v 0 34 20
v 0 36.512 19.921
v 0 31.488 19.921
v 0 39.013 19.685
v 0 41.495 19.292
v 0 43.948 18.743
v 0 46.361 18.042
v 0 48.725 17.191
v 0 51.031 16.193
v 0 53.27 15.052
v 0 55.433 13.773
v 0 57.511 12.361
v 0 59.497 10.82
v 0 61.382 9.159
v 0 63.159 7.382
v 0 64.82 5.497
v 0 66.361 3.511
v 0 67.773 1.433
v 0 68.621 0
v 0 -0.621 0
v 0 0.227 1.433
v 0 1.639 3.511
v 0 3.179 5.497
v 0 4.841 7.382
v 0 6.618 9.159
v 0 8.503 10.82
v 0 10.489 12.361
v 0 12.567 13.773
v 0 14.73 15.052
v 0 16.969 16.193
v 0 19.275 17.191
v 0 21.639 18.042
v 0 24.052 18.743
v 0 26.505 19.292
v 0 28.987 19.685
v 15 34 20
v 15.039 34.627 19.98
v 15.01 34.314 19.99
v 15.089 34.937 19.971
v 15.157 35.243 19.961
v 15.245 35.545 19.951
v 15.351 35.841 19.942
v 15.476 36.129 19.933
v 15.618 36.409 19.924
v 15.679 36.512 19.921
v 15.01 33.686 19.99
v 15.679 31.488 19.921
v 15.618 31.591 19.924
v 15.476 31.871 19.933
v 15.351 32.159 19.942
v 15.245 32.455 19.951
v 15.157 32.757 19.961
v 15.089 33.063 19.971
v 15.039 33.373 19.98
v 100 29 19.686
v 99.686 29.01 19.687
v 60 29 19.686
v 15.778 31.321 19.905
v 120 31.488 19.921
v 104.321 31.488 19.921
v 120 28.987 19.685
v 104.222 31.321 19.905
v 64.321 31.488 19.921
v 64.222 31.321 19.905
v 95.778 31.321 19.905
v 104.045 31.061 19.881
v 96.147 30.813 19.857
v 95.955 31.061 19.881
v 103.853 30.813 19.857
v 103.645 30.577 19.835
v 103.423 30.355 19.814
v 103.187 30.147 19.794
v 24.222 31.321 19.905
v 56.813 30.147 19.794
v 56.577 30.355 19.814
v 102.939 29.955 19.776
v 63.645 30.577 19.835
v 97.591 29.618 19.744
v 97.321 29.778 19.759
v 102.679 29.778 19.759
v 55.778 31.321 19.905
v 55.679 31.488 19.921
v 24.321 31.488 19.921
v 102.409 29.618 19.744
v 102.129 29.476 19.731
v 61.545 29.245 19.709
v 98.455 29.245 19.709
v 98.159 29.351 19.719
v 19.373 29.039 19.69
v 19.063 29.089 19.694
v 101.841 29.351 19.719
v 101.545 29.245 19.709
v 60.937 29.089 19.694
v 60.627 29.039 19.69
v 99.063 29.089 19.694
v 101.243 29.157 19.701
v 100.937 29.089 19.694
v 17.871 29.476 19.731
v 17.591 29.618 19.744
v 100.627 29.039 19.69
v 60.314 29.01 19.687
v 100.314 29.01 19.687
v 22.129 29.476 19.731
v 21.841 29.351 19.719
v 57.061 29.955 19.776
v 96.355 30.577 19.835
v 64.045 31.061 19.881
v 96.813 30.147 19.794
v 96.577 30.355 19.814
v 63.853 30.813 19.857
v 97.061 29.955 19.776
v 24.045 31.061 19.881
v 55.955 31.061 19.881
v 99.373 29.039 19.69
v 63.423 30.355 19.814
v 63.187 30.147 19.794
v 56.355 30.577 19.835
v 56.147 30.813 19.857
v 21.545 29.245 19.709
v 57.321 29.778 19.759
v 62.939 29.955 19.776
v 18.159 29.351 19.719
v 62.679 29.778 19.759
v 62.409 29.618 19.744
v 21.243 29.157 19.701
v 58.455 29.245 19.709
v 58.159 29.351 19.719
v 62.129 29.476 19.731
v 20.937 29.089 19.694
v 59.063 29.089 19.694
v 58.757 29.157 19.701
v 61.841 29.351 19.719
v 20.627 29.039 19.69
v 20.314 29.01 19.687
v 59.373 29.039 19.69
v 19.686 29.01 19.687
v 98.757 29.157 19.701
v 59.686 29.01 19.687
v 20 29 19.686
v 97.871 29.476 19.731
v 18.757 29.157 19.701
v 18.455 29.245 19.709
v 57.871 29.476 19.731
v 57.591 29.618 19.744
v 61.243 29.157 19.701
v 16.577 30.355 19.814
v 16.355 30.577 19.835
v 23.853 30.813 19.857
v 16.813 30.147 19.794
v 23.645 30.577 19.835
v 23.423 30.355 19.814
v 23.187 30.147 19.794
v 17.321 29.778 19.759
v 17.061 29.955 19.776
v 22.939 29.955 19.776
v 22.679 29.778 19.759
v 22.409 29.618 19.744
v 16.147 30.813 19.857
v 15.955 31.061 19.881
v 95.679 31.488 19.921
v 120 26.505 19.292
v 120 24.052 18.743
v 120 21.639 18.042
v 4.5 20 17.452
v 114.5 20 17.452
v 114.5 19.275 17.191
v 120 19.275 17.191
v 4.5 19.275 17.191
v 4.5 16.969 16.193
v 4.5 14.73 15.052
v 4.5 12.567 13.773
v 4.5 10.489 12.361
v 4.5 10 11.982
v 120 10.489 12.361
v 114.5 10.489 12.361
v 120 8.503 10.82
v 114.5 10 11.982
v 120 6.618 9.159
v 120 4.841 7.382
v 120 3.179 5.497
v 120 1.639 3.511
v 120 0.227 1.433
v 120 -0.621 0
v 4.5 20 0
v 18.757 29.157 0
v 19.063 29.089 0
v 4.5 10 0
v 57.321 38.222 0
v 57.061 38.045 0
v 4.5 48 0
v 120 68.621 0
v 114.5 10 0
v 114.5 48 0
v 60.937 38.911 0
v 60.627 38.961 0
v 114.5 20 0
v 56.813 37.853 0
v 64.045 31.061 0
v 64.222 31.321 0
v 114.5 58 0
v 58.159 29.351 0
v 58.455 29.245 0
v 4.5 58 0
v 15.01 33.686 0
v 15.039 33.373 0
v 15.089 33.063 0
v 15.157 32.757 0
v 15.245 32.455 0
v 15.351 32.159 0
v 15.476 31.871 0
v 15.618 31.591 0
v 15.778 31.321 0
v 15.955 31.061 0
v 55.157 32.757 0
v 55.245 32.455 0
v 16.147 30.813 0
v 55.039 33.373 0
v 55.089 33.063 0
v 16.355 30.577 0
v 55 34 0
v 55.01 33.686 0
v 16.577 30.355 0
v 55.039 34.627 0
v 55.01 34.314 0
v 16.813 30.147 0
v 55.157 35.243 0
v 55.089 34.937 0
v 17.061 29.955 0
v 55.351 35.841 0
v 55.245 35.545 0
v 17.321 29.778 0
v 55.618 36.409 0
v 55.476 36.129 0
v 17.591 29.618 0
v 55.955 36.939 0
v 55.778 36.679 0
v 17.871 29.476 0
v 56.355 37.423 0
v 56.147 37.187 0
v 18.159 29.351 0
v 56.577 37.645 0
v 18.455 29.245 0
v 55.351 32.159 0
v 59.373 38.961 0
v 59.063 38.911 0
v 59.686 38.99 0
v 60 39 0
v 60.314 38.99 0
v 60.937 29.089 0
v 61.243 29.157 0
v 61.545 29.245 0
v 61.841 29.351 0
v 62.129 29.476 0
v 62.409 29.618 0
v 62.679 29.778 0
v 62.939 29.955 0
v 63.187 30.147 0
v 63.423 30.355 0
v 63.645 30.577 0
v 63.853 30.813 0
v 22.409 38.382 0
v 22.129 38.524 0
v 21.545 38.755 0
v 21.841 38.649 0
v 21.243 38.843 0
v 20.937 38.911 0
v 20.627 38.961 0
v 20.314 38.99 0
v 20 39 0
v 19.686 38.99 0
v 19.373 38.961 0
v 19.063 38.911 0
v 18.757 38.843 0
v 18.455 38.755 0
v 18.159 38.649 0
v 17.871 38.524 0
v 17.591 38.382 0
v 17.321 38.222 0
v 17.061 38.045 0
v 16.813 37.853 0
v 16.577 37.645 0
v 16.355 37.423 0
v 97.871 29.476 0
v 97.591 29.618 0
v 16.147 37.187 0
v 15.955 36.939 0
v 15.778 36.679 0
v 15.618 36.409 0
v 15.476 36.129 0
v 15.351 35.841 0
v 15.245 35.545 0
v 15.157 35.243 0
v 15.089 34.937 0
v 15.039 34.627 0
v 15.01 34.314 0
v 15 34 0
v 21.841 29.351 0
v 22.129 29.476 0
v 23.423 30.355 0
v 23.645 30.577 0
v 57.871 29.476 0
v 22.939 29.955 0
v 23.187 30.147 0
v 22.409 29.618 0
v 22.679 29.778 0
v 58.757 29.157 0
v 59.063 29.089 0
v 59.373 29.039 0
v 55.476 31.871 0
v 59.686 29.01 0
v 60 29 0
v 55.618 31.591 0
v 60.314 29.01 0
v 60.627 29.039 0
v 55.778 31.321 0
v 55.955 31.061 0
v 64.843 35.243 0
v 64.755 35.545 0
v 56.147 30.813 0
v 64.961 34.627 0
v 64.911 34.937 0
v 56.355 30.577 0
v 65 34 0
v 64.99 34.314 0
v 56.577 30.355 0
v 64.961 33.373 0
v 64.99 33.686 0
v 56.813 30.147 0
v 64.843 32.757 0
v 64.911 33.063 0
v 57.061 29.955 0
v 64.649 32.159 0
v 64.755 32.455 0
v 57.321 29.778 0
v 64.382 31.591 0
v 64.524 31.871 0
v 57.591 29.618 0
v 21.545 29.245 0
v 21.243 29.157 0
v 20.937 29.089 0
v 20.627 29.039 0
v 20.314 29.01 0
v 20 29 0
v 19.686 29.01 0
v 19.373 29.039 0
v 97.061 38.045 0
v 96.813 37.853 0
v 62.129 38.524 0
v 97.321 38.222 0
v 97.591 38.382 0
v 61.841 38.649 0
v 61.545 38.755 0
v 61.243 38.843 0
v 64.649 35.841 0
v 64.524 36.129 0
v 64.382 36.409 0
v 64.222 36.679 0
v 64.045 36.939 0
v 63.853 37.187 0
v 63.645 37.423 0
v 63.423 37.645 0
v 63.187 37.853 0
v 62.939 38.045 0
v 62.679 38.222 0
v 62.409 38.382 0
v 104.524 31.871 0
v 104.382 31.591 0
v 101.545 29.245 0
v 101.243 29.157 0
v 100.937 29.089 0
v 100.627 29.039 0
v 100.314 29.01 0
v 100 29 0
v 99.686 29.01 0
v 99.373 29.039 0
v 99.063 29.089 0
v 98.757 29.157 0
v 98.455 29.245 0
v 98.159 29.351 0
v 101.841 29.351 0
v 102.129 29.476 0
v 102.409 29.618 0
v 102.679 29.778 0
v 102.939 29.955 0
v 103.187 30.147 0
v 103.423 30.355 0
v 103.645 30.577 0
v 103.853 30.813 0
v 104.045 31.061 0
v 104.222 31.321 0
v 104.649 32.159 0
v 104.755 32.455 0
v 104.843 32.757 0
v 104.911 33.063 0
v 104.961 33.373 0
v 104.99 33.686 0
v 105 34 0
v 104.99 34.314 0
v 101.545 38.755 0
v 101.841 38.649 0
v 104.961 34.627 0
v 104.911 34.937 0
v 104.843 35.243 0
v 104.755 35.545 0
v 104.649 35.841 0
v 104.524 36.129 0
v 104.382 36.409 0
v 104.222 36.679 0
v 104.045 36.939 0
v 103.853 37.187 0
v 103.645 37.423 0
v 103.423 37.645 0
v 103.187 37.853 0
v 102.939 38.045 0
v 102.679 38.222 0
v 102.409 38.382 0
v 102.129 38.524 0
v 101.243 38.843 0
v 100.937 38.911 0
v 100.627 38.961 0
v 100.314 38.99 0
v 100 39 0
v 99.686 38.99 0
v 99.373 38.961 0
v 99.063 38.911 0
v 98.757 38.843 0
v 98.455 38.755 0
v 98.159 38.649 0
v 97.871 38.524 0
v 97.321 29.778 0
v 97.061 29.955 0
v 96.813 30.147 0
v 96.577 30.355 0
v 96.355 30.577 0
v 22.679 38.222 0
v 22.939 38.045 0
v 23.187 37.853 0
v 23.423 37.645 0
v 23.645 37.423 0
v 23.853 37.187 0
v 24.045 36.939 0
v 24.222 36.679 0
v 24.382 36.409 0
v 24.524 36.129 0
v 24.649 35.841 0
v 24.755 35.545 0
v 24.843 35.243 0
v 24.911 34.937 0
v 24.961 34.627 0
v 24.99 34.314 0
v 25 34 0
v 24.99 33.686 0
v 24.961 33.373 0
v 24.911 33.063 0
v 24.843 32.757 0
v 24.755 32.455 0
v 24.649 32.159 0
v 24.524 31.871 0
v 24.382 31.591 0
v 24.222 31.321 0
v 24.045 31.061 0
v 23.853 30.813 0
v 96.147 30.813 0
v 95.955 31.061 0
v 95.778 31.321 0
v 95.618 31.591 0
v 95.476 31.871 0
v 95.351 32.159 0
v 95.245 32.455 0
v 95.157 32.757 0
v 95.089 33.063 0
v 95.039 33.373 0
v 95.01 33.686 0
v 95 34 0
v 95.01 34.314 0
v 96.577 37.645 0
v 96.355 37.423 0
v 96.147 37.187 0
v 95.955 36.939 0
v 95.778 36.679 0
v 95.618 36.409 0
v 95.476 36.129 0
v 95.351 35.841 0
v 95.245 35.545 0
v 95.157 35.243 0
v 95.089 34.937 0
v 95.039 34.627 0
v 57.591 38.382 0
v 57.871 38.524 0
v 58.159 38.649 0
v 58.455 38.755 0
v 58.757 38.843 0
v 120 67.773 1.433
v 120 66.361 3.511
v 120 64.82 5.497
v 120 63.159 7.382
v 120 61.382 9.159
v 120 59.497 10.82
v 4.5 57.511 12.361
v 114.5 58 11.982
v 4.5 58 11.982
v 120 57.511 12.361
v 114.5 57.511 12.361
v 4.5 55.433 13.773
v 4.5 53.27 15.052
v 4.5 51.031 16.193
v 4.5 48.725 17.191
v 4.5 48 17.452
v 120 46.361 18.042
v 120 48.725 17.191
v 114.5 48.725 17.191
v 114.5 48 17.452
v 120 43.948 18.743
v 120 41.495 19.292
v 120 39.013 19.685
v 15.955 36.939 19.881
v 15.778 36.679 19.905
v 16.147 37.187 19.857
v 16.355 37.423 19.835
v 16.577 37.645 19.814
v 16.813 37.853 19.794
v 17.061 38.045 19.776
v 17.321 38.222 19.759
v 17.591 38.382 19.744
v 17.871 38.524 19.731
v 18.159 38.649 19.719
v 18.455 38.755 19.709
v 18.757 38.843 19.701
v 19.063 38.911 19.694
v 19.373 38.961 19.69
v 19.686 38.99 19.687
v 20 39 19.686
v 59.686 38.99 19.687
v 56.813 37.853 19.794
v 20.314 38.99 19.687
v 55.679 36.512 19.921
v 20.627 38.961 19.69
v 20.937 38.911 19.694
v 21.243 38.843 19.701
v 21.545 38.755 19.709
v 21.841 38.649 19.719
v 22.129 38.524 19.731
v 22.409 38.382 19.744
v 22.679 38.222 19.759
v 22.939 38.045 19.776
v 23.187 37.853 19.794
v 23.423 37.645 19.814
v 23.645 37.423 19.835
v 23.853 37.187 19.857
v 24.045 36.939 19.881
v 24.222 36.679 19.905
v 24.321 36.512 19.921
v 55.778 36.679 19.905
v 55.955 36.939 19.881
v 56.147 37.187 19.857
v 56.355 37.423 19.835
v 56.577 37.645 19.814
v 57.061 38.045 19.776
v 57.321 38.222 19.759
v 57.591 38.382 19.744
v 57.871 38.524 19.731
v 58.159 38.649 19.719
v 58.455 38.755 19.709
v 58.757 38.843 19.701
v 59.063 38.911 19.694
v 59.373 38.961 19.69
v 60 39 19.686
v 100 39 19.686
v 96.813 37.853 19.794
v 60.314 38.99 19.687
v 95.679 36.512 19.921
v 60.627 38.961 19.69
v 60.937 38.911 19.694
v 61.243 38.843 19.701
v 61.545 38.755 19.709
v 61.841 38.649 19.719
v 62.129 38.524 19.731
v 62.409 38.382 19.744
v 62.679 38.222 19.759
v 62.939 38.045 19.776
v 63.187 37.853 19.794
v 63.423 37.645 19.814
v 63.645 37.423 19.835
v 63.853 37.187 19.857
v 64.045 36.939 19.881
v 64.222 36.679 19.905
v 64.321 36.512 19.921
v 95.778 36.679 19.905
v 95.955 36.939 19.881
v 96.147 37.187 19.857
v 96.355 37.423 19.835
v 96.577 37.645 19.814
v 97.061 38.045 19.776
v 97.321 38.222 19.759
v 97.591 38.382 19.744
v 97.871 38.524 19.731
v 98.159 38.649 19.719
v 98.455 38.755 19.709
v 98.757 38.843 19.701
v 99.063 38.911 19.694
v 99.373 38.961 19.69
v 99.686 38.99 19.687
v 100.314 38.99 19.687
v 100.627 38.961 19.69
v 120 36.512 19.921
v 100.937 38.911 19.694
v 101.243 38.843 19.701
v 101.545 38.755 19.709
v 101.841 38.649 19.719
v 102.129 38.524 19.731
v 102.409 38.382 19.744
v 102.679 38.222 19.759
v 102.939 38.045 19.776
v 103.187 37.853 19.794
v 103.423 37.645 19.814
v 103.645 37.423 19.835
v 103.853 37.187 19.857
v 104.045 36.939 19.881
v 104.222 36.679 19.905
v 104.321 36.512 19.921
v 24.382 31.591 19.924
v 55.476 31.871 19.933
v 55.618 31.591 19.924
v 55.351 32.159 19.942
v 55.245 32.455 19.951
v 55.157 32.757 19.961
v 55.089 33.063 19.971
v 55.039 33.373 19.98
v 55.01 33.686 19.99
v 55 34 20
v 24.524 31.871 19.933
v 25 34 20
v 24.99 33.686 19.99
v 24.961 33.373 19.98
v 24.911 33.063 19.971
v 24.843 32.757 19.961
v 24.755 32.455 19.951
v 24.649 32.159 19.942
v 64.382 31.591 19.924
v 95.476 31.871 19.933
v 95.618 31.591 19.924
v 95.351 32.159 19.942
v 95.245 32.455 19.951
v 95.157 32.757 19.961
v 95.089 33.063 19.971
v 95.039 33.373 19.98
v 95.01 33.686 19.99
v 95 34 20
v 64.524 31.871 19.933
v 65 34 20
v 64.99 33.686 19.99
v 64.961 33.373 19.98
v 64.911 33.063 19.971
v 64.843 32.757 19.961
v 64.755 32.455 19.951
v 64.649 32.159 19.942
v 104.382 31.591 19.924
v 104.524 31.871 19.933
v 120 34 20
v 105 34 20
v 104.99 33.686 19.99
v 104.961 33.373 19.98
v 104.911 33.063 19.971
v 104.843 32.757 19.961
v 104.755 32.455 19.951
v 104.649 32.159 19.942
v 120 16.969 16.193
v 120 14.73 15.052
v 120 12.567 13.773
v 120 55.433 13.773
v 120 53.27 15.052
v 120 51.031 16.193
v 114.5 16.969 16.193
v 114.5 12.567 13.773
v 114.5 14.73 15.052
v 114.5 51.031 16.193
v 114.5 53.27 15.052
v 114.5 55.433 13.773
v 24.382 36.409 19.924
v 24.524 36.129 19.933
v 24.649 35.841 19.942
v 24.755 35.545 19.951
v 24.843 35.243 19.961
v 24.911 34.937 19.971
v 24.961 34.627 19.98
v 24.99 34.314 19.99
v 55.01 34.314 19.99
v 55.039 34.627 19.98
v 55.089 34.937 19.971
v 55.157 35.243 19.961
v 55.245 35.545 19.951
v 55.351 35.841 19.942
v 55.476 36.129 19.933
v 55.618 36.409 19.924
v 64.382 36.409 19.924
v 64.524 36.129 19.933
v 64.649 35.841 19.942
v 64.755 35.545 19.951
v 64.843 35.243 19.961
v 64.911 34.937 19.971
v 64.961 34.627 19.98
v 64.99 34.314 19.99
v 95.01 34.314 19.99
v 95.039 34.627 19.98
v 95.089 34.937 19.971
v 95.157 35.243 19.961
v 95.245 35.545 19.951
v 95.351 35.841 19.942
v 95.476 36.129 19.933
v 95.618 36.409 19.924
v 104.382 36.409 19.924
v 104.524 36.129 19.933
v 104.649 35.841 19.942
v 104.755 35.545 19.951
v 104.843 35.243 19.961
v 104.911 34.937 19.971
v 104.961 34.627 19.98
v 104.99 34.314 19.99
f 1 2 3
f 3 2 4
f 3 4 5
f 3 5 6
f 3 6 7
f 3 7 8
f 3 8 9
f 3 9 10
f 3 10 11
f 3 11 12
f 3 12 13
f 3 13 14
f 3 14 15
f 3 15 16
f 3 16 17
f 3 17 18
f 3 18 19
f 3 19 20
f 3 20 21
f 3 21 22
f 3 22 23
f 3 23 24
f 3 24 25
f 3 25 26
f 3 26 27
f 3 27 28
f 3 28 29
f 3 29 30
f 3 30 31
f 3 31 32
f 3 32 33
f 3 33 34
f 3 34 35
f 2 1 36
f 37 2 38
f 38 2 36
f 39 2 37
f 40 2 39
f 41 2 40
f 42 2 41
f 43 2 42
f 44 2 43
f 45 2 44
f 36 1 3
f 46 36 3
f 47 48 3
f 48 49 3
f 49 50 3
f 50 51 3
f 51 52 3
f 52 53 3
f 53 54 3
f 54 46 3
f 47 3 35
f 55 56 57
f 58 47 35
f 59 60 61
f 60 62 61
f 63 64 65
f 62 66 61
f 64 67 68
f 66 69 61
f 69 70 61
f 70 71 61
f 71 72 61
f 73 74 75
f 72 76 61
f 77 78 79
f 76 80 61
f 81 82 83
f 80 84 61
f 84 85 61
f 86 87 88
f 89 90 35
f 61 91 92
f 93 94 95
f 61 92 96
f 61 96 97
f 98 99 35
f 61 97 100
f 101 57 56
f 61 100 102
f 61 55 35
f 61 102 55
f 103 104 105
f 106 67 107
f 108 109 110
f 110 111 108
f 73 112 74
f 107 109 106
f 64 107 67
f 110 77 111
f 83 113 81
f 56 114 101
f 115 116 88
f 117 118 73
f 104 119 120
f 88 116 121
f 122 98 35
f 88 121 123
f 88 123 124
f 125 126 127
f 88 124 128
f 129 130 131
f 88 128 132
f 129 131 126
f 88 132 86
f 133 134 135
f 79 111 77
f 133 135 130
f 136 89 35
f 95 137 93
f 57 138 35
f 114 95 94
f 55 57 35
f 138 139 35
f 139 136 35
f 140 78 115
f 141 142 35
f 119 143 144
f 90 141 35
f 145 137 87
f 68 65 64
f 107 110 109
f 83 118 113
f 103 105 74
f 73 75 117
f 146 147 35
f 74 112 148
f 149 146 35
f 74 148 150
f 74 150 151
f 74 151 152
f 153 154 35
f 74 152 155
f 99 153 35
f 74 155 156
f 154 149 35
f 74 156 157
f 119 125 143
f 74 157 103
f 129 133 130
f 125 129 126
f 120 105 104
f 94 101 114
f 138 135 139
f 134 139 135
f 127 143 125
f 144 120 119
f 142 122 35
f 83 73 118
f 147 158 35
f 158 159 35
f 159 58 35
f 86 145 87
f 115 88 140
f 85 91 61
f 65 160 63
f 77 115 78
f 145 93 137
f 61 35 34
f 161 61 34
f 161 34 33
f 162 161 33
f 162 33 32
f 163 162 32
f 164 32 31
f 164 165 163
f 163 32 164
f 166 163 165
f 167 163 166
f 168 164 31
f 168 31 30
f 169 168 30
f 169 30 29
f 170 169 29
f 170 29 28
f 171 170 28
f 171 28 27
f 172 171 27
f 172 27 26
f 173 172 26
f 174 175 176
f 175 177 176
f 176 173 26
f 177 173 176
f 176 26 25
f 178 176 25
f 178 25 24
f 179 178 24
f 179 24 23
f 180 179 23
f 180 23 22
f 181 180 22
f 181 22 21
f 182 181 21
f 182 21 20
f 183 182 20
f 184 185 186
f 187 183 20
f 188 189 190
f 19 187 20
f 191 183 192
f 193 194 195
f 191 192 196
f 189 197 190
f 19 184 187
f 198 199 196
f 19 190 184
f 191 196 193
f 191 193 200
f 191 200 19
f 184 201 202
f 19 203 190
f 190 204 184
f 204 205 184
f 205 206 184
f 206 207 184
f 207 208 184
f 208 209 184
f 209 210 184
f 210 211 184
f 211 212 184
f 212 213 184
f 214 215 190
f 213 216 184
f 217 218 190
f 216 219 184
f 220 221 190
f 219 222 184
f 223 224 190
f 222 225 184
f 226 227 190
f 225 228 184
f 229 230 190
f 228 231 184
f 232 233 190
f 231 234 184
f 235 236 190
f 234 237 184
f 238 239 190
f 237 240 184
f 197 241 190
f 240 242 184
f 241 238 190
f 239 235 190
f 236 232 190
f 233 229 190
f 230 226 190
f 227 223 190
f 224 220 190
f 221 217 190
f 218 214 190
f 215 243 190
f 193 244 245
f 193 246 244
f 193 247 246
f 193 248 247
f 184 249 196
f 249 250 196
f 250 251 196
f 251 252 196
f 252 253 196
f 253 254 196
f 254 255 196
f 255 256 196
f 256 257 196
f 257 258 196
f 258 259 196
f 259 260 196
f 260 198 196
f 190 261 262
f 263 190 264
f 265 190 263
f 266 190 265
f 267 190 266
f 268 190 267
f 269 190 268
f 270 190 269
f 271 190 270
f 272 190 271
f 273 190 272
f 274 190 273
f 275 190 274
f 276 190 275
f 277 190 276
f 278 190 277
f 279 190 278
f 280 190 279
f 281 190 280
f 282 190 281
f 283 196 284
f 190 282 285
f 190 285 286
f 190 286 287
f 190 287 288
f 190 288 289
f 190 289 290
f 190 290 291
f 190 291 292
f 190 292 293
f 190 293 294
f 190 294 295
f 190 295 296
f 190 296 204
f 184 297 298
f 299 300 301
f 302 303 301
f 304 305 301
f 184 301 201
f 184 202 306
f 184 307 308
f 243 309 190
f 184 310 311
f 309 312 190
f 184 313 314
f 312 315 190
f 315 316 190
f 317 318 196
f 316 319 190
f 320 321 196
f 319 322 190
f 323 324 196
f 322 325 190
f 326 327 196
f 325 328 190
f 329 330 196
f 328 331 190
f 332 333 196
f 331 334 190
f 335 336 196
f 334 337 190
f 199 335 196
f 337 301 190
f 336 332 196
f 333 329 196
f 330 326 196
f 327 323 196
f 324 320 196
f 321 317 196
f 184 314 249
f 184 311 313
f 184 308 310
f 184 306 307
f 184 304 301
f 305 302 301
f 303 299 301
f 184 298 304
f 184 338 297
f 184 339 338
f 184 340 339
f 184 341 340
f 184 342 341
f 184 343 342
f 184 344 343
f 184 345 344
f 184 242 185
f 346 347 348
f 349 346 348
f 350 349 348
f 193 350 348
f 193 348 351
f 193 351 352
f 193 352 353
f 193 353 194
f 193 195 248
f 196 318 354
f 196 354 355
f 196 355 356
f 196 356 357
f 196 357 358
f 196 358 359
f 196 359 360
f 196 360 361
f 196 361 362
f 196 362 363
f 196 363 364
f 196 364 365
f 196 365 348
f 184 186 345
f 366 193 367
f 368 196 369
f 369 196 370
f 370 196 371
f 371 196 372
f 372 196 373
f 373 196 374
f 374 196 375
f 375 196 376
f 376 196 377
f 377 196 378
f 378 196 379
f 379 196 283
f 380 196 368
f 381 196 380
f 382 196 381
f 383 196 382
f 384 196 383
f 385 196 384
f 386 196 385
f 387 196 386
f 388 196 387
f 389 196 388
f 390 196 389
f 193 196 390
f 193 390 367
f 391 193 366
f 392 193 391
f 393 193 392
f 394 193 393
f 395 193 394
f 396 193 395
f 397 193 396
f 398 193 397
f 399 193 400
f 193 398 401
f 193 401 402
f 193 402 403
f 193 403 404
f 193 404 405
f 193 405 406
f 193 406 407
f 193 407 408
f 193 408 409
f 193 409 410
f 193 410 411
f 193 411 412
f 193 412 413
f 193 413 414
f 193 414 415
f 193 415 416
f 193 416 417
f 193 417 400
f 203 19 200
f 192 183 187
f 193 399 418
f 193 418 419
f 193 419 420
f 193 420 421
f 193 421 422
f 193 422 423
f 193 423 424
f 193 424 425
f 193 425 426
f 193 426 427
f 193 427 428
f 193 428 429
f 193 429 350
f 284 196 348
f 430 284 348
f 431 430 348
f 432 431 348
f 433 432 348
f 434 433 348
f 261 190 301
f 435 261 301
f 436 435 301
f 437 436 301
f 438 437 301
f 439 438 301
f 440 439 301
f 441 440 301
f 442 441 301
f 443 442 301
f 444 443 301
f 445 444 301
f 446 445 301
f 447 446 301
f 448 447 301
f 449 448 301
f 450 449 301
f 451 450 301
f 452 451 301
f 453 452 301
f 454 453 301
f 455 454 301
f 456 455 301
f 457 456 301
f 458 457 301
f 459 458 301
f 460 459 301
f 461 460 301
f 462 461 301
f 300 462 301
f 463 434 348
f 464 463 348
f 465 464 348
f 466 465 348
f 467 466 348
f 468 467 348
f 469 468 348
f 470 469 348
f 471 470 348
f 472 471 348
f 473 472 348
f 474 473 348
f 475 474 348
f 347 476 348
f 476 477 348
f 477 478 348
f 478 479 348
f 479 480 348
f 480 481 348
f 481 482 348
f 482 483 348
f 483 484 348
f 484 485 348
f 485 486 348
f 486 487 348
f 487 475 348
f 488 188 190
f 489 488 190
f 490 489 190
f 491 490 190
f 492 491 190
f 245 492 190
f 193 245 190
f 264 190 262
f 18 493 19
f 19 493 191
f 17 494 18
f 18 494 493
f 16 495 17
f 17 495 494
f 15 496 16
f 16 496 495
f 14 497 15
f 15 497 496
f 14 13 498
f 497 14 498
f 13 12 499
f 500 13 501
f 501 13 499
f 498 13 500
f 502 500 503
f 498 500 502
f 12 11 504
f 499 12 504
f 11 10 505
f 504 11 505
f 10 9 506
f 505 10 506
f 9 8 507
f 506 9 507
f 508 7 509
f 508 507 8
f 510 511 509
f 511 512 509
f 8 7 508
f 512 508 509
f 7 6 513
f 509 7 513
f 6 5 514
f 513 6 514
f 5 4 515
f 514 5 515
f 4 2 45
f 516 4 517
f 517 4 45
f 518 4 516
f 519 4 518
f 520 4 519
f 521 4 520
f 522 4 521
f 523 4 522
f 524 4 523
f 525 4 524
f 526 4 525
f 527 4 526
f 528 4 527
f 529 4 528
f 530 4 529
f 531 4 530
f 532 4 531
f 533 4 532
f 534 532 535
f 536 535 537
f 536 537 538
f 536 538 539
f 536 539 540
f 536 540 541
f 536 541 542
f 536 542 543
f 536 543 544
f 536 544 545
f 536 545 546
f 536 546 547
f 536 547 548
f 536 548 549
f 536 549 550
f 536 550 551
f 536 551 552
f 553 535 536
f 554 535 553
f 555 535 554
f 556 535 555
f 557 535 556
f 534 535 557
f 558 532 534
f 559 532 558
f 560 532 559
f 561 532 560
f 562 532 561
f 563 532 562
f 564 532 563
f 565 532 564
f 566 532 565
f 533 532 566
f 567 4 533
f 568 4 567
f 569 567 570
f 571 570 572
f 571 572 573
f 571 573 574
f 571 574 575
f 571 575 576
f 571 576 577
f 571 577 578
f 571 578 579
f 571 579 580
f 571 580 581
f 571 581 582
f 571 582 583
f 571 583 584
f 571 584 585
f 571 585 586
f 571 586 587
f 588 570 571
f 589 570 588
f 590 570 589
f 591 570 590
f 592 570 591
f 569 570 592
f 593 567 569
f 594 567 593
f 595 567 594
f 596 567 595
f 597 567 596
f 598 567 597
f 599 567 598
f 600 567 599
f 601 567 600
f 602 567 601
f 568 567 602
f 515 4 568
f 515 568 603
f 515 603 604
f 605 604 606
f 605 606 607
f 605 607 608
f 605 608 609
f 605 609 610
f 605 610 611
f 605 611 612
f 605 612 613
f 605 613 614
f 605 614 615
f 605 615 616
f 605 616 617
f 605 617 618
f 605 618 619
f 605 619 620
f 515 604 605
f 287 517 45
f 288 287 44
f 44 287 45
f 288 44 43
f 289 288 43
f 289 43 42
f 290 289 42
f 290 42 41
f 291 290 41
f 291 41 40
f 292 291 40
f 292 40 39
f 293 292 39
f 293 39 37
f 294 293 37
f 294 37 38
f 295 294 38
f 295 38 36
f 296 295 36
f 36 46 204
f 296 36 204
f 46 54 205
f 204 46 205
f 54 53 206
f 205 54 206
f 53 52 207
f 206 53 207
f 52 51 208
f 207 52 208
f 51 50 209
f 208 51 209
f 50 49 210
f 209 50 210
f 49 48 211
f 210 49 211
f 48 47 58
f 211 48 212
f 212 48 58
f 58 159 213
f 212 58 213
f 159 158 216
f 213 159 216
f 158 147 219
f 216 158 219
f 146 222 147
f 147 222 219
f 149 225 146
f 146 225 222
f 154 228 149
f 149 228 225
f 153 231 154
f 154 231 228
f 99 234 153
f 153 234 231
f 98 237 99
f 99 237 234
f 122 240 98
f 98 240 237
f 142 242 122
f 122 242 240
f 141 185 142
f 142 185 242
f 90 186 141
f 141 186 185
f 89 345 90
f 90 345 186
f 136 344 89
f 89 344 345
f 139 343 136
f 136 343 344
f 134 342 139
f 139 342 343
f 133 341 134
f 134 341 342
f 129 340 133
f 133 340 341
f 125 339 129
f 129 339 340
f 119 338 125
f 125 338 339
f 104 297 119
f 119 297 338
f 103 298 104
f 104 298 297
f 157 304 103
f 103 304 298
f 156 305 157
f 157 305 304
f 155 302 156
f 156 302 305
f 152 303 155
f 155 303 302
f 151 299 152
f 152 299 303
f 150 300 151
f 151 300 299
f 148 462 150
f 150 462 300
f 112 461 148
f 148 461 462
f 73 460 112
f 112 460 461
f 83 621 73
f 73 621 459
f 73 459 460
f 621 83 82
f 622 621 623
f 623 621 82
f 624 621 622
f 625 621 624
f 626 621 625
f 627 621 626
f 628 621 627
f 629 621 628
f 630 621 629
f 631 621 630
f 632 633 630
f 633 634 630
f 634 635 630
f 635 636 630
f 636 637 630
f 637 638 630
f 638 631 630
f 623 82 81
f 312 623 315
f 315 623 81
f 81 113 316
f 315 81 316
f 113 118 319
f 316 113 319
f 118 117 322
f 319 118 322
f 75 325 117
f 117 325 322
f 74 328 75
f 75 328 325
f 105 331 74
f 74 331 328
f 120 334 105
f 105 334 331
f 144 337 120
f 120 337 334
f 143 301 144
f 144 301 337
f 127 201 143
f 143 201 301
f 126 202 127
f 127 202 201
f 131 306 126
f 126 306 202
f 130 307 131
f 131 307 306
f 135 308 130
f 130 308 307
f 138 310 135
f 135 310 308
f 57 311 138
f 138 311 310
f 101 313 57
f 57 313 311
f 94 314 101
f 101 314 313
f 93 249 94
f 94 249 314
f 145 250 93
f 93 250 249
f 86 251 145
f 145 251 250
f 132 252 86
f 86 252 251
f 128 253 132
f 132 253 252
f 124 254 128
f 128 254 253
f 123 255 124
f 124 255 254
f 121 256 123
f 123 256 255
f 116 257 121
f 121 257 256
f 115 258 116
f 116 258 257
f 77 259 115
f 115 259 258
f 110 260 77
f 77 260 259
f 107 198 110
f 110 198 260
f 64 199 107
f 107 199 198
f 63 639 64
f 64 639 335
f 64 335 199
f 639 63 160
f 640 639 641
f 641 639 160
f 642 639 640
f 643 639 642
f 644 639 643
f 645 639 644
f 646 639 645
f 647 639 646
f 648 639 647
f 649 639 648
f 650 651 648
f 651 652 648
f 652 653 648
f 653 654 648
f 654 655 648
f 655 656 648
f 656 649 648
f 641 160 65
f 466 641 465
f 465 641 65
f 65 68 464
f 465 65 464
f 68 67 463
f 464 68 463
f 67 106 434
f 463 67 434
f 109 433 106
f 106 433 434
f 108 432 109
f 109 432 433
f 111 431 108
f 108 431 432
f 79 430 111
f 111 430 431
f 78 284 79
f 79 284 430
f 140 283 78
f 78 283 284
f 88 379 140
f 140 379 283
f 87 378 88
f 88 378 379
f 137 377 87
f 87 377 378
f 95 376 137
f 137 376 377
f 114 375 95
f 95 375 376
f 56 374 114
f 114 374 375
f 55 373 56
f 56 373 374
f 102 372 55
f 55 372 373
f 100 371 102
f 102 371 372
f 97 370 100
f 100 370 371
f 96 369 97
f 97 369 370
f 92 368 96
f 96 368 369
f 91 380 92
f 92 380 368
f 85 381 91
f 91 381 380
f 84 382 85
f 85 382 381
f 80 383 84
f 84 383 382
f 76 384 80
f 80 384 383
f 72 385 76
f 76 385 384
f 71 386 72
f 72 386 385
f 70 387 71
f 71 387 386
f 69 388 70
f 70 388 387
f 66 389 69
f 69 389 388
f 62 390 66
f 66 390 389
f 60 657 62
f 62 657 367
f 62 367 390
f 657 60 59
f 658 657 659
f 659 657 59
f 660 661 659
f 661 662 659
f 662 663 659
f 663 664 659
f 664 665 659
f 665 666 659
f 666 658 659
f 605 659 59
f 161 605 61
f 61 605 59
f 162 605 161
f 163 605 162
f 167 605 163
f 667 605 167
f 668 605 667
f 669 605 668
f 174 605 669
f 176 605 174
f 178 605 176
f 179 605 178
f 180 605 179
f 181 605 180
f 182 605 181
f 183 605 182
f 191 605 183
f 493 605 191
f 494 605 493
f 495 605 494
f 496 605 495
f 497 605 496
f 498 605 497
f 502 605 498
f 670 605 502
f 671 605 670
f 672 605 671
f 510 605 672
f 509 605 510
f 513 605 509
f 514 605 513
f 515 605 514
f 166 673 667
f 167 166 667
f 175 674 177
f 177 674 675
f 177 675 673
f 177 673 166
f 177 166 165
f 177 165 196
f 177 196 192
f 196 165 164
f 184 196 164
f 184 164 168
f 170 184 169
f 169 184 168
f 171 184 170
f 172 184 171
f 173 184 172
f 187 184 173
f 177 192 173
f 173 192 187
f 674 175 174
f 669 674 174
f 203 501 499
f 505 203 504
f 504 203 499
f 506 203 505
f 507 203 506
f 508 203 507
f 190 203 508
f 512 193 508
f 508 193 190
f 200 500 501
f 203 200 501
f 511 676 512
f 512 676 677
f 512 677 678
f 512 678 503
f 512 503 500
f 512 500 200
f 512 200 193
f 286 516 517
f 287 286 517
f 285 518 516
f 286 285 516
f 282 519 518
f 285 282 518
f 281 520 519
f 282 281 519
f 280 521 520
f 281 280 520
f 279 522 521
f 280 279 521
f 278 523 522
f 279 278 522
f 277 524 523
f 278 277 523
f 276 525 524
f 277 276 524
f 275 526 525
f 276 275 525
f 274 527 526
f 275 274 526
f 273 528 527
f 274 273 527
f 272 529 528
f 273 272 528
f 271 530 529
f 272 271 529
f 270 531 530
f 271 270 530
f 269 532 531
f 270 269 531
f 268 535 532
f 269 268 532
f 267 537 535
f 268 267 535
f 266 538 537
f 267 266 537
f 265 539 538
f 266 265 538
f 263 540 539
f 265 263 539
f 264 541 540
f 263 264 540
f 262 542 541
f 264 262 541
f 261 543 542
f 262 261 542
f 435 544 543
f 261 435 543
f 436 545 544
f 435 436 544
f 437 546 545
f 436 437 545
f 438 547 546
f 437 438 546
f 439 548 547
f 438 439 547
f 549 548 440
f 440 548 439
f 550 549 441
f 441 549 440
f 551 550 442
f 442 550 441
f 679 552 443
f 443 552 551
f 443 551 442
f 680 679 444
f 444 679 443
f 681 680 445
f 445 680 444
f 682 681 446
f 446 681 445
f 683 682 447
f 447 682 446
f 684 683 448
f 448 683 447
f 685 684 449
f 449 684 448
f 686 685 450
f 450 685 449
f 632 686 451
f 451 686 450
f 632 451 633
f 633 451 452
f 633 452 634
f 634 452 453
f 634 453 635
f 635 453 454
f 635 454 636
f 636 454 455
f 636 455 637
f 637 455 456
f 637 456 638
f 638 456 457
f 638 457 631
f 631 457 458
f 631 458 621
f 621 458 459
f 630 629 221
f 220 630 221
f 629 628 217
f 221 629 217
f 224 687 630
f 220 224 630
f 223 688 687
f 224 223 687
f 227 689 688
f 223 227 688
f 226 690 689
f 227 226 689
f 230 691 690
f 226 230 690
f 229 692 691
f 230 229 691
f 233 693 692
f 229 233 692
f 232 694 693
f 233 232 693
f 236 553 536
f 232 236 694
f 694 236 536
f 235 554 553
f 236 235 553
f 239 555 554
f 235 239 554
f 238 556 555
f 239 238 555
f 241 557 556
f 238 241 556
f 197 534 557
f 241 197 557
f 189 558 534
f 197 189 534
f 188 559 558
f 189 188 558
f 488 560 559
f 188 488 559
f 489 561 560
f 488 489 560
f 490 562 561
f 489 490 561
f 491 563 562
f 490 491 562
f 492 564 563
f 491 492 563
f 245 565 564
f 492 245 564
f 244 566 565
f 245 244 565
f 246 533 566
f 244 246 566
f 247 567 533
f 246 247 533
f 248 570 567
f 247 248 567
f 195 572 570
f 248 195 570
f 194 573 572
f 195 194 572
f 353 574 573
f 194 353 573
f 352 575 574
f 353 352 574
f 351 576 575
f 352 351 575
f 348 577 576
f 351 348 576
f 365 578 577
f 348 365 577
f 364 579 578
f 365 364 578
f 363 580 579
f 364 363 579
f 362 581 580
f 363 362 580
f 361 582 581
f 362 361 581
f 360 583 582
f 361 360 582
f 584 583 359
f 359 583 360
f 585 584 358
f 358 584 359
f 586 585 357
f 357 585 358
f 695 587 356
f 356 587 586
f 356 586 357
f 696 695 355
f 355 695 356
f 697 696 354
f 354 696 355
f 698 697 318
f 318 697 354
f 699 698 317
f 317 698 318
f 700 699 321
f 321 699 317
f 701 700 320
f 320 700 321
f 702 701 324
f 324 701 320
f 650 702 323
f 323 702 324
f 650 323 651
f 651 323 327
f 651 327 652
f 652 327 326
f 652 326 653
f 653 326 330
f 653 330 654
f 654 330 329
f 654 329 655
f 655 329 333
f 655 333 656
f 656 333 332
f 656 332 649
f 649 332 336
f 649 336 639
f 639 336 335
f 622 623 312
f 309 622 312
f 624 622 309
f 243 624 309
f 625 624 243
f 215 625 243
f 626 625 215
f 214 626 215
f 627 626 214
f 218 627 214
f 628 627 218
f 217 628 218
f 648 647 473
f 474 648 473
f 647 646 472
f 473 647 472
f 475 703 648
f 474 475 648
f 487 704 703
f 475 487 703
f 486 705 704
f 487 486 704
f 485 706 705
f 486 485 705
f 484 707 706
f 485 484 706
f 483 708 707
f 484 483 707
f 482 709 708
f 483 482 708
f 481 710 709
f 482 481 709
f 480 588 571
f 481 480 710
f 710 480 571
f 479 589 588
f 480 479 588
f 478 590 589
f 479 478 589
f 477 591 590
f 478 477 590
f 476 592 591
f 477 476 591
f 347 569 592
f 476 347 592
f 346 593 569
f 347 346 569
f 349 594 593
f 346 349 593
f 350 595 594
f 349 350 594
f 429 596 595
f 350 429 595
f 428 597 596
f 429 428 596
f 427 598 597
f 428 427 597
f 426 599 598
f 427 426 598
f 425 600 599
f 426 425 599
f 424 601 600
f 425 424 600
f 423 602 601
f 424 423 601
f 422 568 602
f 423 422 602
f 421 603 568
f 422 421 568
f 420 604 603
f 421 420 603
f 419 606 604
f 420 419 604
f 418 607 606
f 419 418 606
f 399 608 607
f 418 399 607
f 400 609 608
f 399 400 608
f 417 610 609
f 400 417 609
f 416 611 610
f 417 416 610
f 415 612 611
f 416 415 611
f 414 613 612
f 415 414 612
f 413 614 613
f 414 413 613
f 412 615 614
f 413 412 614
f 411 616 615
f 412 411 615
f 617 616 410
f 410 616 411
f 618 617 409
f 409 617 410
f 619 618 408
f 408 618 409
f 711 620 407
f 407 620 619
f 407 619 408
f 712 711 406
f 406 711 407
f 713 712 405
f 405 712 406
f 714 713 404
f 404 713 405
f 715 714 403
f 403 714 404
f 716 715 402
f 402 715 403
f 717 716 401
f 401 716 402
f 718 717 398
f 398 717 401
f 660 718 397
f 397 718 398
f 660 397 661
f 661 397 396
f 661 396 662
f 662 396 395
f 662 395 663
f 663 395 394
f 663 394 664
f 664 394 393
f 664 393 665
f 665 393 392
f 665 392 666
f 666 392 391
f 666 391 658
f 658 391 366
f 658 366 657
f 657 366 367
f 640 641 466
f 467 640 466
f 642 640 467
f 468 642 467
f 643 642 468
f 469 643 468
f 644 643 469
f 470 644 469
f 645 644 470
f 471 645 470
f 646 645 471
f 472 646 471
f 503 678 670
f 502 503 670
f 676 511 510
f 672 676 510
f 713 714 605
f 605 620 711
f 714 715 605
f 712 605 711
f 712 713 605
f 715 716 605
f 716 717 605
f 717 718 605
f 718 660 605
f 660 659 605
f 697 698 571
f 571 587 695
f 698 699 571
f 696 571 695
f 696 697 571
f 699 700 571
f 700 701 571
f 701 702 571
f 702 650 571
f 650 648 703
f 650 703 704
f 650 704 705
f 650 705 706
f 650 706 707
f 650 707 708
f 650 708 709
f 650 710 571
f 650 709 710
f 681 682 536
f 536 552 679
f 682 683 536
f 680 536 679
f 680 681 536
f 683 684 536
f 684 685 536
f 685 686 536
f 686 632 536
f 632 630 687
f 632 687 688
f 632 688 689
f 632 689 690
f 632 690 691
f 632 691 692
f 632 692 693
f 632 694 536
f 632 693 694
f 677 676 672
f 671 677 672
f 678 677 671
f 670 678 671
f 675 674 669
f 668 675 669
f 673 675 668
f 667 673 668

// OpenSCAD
$fn=100;
module razor_head_top(cy_r=20, cy_h=60) {

	offset=-2;

translate([0,0,-20]) {
	
	difference() {
	
		translate([0,0,0]) {
			difference() {
		
		
				translate([0,0,0]){
				
					difference() {
				
						translate([0,34,0]) {
							rotate([0,90,0]){
								cylinder(r=40,h=120);
							}
						}
					
						translate([-4,-10,-80]){
							cube([125,100,100]);
						}
				
						//female connector
						translate([60,34,19]) {
								cylinder(r=5,h=30);
						}//end female connector
					}
				}
		
		
	
		
	
	
			}
		}
	
			//vertical slat
			translate([4.5,48,-15]) {
				cube([110, cy_r/2, cy_h]);
			}
		
			//vertical slat
			translate([4.5, 10,-15]) {
				cube([110, cy_r/2, cy_h]);
			}
	
			//side holes
				//female connector
				translate([20,34,19]) {
						cylinder(r = 5, h=24);
				}//end female connector
	
			//side holes
			//female connector
			translate([100,34,19]) {
					cylinder(r=5,h=24);
			}//end female connector
		}
	
	}
}
razor_head_top();
